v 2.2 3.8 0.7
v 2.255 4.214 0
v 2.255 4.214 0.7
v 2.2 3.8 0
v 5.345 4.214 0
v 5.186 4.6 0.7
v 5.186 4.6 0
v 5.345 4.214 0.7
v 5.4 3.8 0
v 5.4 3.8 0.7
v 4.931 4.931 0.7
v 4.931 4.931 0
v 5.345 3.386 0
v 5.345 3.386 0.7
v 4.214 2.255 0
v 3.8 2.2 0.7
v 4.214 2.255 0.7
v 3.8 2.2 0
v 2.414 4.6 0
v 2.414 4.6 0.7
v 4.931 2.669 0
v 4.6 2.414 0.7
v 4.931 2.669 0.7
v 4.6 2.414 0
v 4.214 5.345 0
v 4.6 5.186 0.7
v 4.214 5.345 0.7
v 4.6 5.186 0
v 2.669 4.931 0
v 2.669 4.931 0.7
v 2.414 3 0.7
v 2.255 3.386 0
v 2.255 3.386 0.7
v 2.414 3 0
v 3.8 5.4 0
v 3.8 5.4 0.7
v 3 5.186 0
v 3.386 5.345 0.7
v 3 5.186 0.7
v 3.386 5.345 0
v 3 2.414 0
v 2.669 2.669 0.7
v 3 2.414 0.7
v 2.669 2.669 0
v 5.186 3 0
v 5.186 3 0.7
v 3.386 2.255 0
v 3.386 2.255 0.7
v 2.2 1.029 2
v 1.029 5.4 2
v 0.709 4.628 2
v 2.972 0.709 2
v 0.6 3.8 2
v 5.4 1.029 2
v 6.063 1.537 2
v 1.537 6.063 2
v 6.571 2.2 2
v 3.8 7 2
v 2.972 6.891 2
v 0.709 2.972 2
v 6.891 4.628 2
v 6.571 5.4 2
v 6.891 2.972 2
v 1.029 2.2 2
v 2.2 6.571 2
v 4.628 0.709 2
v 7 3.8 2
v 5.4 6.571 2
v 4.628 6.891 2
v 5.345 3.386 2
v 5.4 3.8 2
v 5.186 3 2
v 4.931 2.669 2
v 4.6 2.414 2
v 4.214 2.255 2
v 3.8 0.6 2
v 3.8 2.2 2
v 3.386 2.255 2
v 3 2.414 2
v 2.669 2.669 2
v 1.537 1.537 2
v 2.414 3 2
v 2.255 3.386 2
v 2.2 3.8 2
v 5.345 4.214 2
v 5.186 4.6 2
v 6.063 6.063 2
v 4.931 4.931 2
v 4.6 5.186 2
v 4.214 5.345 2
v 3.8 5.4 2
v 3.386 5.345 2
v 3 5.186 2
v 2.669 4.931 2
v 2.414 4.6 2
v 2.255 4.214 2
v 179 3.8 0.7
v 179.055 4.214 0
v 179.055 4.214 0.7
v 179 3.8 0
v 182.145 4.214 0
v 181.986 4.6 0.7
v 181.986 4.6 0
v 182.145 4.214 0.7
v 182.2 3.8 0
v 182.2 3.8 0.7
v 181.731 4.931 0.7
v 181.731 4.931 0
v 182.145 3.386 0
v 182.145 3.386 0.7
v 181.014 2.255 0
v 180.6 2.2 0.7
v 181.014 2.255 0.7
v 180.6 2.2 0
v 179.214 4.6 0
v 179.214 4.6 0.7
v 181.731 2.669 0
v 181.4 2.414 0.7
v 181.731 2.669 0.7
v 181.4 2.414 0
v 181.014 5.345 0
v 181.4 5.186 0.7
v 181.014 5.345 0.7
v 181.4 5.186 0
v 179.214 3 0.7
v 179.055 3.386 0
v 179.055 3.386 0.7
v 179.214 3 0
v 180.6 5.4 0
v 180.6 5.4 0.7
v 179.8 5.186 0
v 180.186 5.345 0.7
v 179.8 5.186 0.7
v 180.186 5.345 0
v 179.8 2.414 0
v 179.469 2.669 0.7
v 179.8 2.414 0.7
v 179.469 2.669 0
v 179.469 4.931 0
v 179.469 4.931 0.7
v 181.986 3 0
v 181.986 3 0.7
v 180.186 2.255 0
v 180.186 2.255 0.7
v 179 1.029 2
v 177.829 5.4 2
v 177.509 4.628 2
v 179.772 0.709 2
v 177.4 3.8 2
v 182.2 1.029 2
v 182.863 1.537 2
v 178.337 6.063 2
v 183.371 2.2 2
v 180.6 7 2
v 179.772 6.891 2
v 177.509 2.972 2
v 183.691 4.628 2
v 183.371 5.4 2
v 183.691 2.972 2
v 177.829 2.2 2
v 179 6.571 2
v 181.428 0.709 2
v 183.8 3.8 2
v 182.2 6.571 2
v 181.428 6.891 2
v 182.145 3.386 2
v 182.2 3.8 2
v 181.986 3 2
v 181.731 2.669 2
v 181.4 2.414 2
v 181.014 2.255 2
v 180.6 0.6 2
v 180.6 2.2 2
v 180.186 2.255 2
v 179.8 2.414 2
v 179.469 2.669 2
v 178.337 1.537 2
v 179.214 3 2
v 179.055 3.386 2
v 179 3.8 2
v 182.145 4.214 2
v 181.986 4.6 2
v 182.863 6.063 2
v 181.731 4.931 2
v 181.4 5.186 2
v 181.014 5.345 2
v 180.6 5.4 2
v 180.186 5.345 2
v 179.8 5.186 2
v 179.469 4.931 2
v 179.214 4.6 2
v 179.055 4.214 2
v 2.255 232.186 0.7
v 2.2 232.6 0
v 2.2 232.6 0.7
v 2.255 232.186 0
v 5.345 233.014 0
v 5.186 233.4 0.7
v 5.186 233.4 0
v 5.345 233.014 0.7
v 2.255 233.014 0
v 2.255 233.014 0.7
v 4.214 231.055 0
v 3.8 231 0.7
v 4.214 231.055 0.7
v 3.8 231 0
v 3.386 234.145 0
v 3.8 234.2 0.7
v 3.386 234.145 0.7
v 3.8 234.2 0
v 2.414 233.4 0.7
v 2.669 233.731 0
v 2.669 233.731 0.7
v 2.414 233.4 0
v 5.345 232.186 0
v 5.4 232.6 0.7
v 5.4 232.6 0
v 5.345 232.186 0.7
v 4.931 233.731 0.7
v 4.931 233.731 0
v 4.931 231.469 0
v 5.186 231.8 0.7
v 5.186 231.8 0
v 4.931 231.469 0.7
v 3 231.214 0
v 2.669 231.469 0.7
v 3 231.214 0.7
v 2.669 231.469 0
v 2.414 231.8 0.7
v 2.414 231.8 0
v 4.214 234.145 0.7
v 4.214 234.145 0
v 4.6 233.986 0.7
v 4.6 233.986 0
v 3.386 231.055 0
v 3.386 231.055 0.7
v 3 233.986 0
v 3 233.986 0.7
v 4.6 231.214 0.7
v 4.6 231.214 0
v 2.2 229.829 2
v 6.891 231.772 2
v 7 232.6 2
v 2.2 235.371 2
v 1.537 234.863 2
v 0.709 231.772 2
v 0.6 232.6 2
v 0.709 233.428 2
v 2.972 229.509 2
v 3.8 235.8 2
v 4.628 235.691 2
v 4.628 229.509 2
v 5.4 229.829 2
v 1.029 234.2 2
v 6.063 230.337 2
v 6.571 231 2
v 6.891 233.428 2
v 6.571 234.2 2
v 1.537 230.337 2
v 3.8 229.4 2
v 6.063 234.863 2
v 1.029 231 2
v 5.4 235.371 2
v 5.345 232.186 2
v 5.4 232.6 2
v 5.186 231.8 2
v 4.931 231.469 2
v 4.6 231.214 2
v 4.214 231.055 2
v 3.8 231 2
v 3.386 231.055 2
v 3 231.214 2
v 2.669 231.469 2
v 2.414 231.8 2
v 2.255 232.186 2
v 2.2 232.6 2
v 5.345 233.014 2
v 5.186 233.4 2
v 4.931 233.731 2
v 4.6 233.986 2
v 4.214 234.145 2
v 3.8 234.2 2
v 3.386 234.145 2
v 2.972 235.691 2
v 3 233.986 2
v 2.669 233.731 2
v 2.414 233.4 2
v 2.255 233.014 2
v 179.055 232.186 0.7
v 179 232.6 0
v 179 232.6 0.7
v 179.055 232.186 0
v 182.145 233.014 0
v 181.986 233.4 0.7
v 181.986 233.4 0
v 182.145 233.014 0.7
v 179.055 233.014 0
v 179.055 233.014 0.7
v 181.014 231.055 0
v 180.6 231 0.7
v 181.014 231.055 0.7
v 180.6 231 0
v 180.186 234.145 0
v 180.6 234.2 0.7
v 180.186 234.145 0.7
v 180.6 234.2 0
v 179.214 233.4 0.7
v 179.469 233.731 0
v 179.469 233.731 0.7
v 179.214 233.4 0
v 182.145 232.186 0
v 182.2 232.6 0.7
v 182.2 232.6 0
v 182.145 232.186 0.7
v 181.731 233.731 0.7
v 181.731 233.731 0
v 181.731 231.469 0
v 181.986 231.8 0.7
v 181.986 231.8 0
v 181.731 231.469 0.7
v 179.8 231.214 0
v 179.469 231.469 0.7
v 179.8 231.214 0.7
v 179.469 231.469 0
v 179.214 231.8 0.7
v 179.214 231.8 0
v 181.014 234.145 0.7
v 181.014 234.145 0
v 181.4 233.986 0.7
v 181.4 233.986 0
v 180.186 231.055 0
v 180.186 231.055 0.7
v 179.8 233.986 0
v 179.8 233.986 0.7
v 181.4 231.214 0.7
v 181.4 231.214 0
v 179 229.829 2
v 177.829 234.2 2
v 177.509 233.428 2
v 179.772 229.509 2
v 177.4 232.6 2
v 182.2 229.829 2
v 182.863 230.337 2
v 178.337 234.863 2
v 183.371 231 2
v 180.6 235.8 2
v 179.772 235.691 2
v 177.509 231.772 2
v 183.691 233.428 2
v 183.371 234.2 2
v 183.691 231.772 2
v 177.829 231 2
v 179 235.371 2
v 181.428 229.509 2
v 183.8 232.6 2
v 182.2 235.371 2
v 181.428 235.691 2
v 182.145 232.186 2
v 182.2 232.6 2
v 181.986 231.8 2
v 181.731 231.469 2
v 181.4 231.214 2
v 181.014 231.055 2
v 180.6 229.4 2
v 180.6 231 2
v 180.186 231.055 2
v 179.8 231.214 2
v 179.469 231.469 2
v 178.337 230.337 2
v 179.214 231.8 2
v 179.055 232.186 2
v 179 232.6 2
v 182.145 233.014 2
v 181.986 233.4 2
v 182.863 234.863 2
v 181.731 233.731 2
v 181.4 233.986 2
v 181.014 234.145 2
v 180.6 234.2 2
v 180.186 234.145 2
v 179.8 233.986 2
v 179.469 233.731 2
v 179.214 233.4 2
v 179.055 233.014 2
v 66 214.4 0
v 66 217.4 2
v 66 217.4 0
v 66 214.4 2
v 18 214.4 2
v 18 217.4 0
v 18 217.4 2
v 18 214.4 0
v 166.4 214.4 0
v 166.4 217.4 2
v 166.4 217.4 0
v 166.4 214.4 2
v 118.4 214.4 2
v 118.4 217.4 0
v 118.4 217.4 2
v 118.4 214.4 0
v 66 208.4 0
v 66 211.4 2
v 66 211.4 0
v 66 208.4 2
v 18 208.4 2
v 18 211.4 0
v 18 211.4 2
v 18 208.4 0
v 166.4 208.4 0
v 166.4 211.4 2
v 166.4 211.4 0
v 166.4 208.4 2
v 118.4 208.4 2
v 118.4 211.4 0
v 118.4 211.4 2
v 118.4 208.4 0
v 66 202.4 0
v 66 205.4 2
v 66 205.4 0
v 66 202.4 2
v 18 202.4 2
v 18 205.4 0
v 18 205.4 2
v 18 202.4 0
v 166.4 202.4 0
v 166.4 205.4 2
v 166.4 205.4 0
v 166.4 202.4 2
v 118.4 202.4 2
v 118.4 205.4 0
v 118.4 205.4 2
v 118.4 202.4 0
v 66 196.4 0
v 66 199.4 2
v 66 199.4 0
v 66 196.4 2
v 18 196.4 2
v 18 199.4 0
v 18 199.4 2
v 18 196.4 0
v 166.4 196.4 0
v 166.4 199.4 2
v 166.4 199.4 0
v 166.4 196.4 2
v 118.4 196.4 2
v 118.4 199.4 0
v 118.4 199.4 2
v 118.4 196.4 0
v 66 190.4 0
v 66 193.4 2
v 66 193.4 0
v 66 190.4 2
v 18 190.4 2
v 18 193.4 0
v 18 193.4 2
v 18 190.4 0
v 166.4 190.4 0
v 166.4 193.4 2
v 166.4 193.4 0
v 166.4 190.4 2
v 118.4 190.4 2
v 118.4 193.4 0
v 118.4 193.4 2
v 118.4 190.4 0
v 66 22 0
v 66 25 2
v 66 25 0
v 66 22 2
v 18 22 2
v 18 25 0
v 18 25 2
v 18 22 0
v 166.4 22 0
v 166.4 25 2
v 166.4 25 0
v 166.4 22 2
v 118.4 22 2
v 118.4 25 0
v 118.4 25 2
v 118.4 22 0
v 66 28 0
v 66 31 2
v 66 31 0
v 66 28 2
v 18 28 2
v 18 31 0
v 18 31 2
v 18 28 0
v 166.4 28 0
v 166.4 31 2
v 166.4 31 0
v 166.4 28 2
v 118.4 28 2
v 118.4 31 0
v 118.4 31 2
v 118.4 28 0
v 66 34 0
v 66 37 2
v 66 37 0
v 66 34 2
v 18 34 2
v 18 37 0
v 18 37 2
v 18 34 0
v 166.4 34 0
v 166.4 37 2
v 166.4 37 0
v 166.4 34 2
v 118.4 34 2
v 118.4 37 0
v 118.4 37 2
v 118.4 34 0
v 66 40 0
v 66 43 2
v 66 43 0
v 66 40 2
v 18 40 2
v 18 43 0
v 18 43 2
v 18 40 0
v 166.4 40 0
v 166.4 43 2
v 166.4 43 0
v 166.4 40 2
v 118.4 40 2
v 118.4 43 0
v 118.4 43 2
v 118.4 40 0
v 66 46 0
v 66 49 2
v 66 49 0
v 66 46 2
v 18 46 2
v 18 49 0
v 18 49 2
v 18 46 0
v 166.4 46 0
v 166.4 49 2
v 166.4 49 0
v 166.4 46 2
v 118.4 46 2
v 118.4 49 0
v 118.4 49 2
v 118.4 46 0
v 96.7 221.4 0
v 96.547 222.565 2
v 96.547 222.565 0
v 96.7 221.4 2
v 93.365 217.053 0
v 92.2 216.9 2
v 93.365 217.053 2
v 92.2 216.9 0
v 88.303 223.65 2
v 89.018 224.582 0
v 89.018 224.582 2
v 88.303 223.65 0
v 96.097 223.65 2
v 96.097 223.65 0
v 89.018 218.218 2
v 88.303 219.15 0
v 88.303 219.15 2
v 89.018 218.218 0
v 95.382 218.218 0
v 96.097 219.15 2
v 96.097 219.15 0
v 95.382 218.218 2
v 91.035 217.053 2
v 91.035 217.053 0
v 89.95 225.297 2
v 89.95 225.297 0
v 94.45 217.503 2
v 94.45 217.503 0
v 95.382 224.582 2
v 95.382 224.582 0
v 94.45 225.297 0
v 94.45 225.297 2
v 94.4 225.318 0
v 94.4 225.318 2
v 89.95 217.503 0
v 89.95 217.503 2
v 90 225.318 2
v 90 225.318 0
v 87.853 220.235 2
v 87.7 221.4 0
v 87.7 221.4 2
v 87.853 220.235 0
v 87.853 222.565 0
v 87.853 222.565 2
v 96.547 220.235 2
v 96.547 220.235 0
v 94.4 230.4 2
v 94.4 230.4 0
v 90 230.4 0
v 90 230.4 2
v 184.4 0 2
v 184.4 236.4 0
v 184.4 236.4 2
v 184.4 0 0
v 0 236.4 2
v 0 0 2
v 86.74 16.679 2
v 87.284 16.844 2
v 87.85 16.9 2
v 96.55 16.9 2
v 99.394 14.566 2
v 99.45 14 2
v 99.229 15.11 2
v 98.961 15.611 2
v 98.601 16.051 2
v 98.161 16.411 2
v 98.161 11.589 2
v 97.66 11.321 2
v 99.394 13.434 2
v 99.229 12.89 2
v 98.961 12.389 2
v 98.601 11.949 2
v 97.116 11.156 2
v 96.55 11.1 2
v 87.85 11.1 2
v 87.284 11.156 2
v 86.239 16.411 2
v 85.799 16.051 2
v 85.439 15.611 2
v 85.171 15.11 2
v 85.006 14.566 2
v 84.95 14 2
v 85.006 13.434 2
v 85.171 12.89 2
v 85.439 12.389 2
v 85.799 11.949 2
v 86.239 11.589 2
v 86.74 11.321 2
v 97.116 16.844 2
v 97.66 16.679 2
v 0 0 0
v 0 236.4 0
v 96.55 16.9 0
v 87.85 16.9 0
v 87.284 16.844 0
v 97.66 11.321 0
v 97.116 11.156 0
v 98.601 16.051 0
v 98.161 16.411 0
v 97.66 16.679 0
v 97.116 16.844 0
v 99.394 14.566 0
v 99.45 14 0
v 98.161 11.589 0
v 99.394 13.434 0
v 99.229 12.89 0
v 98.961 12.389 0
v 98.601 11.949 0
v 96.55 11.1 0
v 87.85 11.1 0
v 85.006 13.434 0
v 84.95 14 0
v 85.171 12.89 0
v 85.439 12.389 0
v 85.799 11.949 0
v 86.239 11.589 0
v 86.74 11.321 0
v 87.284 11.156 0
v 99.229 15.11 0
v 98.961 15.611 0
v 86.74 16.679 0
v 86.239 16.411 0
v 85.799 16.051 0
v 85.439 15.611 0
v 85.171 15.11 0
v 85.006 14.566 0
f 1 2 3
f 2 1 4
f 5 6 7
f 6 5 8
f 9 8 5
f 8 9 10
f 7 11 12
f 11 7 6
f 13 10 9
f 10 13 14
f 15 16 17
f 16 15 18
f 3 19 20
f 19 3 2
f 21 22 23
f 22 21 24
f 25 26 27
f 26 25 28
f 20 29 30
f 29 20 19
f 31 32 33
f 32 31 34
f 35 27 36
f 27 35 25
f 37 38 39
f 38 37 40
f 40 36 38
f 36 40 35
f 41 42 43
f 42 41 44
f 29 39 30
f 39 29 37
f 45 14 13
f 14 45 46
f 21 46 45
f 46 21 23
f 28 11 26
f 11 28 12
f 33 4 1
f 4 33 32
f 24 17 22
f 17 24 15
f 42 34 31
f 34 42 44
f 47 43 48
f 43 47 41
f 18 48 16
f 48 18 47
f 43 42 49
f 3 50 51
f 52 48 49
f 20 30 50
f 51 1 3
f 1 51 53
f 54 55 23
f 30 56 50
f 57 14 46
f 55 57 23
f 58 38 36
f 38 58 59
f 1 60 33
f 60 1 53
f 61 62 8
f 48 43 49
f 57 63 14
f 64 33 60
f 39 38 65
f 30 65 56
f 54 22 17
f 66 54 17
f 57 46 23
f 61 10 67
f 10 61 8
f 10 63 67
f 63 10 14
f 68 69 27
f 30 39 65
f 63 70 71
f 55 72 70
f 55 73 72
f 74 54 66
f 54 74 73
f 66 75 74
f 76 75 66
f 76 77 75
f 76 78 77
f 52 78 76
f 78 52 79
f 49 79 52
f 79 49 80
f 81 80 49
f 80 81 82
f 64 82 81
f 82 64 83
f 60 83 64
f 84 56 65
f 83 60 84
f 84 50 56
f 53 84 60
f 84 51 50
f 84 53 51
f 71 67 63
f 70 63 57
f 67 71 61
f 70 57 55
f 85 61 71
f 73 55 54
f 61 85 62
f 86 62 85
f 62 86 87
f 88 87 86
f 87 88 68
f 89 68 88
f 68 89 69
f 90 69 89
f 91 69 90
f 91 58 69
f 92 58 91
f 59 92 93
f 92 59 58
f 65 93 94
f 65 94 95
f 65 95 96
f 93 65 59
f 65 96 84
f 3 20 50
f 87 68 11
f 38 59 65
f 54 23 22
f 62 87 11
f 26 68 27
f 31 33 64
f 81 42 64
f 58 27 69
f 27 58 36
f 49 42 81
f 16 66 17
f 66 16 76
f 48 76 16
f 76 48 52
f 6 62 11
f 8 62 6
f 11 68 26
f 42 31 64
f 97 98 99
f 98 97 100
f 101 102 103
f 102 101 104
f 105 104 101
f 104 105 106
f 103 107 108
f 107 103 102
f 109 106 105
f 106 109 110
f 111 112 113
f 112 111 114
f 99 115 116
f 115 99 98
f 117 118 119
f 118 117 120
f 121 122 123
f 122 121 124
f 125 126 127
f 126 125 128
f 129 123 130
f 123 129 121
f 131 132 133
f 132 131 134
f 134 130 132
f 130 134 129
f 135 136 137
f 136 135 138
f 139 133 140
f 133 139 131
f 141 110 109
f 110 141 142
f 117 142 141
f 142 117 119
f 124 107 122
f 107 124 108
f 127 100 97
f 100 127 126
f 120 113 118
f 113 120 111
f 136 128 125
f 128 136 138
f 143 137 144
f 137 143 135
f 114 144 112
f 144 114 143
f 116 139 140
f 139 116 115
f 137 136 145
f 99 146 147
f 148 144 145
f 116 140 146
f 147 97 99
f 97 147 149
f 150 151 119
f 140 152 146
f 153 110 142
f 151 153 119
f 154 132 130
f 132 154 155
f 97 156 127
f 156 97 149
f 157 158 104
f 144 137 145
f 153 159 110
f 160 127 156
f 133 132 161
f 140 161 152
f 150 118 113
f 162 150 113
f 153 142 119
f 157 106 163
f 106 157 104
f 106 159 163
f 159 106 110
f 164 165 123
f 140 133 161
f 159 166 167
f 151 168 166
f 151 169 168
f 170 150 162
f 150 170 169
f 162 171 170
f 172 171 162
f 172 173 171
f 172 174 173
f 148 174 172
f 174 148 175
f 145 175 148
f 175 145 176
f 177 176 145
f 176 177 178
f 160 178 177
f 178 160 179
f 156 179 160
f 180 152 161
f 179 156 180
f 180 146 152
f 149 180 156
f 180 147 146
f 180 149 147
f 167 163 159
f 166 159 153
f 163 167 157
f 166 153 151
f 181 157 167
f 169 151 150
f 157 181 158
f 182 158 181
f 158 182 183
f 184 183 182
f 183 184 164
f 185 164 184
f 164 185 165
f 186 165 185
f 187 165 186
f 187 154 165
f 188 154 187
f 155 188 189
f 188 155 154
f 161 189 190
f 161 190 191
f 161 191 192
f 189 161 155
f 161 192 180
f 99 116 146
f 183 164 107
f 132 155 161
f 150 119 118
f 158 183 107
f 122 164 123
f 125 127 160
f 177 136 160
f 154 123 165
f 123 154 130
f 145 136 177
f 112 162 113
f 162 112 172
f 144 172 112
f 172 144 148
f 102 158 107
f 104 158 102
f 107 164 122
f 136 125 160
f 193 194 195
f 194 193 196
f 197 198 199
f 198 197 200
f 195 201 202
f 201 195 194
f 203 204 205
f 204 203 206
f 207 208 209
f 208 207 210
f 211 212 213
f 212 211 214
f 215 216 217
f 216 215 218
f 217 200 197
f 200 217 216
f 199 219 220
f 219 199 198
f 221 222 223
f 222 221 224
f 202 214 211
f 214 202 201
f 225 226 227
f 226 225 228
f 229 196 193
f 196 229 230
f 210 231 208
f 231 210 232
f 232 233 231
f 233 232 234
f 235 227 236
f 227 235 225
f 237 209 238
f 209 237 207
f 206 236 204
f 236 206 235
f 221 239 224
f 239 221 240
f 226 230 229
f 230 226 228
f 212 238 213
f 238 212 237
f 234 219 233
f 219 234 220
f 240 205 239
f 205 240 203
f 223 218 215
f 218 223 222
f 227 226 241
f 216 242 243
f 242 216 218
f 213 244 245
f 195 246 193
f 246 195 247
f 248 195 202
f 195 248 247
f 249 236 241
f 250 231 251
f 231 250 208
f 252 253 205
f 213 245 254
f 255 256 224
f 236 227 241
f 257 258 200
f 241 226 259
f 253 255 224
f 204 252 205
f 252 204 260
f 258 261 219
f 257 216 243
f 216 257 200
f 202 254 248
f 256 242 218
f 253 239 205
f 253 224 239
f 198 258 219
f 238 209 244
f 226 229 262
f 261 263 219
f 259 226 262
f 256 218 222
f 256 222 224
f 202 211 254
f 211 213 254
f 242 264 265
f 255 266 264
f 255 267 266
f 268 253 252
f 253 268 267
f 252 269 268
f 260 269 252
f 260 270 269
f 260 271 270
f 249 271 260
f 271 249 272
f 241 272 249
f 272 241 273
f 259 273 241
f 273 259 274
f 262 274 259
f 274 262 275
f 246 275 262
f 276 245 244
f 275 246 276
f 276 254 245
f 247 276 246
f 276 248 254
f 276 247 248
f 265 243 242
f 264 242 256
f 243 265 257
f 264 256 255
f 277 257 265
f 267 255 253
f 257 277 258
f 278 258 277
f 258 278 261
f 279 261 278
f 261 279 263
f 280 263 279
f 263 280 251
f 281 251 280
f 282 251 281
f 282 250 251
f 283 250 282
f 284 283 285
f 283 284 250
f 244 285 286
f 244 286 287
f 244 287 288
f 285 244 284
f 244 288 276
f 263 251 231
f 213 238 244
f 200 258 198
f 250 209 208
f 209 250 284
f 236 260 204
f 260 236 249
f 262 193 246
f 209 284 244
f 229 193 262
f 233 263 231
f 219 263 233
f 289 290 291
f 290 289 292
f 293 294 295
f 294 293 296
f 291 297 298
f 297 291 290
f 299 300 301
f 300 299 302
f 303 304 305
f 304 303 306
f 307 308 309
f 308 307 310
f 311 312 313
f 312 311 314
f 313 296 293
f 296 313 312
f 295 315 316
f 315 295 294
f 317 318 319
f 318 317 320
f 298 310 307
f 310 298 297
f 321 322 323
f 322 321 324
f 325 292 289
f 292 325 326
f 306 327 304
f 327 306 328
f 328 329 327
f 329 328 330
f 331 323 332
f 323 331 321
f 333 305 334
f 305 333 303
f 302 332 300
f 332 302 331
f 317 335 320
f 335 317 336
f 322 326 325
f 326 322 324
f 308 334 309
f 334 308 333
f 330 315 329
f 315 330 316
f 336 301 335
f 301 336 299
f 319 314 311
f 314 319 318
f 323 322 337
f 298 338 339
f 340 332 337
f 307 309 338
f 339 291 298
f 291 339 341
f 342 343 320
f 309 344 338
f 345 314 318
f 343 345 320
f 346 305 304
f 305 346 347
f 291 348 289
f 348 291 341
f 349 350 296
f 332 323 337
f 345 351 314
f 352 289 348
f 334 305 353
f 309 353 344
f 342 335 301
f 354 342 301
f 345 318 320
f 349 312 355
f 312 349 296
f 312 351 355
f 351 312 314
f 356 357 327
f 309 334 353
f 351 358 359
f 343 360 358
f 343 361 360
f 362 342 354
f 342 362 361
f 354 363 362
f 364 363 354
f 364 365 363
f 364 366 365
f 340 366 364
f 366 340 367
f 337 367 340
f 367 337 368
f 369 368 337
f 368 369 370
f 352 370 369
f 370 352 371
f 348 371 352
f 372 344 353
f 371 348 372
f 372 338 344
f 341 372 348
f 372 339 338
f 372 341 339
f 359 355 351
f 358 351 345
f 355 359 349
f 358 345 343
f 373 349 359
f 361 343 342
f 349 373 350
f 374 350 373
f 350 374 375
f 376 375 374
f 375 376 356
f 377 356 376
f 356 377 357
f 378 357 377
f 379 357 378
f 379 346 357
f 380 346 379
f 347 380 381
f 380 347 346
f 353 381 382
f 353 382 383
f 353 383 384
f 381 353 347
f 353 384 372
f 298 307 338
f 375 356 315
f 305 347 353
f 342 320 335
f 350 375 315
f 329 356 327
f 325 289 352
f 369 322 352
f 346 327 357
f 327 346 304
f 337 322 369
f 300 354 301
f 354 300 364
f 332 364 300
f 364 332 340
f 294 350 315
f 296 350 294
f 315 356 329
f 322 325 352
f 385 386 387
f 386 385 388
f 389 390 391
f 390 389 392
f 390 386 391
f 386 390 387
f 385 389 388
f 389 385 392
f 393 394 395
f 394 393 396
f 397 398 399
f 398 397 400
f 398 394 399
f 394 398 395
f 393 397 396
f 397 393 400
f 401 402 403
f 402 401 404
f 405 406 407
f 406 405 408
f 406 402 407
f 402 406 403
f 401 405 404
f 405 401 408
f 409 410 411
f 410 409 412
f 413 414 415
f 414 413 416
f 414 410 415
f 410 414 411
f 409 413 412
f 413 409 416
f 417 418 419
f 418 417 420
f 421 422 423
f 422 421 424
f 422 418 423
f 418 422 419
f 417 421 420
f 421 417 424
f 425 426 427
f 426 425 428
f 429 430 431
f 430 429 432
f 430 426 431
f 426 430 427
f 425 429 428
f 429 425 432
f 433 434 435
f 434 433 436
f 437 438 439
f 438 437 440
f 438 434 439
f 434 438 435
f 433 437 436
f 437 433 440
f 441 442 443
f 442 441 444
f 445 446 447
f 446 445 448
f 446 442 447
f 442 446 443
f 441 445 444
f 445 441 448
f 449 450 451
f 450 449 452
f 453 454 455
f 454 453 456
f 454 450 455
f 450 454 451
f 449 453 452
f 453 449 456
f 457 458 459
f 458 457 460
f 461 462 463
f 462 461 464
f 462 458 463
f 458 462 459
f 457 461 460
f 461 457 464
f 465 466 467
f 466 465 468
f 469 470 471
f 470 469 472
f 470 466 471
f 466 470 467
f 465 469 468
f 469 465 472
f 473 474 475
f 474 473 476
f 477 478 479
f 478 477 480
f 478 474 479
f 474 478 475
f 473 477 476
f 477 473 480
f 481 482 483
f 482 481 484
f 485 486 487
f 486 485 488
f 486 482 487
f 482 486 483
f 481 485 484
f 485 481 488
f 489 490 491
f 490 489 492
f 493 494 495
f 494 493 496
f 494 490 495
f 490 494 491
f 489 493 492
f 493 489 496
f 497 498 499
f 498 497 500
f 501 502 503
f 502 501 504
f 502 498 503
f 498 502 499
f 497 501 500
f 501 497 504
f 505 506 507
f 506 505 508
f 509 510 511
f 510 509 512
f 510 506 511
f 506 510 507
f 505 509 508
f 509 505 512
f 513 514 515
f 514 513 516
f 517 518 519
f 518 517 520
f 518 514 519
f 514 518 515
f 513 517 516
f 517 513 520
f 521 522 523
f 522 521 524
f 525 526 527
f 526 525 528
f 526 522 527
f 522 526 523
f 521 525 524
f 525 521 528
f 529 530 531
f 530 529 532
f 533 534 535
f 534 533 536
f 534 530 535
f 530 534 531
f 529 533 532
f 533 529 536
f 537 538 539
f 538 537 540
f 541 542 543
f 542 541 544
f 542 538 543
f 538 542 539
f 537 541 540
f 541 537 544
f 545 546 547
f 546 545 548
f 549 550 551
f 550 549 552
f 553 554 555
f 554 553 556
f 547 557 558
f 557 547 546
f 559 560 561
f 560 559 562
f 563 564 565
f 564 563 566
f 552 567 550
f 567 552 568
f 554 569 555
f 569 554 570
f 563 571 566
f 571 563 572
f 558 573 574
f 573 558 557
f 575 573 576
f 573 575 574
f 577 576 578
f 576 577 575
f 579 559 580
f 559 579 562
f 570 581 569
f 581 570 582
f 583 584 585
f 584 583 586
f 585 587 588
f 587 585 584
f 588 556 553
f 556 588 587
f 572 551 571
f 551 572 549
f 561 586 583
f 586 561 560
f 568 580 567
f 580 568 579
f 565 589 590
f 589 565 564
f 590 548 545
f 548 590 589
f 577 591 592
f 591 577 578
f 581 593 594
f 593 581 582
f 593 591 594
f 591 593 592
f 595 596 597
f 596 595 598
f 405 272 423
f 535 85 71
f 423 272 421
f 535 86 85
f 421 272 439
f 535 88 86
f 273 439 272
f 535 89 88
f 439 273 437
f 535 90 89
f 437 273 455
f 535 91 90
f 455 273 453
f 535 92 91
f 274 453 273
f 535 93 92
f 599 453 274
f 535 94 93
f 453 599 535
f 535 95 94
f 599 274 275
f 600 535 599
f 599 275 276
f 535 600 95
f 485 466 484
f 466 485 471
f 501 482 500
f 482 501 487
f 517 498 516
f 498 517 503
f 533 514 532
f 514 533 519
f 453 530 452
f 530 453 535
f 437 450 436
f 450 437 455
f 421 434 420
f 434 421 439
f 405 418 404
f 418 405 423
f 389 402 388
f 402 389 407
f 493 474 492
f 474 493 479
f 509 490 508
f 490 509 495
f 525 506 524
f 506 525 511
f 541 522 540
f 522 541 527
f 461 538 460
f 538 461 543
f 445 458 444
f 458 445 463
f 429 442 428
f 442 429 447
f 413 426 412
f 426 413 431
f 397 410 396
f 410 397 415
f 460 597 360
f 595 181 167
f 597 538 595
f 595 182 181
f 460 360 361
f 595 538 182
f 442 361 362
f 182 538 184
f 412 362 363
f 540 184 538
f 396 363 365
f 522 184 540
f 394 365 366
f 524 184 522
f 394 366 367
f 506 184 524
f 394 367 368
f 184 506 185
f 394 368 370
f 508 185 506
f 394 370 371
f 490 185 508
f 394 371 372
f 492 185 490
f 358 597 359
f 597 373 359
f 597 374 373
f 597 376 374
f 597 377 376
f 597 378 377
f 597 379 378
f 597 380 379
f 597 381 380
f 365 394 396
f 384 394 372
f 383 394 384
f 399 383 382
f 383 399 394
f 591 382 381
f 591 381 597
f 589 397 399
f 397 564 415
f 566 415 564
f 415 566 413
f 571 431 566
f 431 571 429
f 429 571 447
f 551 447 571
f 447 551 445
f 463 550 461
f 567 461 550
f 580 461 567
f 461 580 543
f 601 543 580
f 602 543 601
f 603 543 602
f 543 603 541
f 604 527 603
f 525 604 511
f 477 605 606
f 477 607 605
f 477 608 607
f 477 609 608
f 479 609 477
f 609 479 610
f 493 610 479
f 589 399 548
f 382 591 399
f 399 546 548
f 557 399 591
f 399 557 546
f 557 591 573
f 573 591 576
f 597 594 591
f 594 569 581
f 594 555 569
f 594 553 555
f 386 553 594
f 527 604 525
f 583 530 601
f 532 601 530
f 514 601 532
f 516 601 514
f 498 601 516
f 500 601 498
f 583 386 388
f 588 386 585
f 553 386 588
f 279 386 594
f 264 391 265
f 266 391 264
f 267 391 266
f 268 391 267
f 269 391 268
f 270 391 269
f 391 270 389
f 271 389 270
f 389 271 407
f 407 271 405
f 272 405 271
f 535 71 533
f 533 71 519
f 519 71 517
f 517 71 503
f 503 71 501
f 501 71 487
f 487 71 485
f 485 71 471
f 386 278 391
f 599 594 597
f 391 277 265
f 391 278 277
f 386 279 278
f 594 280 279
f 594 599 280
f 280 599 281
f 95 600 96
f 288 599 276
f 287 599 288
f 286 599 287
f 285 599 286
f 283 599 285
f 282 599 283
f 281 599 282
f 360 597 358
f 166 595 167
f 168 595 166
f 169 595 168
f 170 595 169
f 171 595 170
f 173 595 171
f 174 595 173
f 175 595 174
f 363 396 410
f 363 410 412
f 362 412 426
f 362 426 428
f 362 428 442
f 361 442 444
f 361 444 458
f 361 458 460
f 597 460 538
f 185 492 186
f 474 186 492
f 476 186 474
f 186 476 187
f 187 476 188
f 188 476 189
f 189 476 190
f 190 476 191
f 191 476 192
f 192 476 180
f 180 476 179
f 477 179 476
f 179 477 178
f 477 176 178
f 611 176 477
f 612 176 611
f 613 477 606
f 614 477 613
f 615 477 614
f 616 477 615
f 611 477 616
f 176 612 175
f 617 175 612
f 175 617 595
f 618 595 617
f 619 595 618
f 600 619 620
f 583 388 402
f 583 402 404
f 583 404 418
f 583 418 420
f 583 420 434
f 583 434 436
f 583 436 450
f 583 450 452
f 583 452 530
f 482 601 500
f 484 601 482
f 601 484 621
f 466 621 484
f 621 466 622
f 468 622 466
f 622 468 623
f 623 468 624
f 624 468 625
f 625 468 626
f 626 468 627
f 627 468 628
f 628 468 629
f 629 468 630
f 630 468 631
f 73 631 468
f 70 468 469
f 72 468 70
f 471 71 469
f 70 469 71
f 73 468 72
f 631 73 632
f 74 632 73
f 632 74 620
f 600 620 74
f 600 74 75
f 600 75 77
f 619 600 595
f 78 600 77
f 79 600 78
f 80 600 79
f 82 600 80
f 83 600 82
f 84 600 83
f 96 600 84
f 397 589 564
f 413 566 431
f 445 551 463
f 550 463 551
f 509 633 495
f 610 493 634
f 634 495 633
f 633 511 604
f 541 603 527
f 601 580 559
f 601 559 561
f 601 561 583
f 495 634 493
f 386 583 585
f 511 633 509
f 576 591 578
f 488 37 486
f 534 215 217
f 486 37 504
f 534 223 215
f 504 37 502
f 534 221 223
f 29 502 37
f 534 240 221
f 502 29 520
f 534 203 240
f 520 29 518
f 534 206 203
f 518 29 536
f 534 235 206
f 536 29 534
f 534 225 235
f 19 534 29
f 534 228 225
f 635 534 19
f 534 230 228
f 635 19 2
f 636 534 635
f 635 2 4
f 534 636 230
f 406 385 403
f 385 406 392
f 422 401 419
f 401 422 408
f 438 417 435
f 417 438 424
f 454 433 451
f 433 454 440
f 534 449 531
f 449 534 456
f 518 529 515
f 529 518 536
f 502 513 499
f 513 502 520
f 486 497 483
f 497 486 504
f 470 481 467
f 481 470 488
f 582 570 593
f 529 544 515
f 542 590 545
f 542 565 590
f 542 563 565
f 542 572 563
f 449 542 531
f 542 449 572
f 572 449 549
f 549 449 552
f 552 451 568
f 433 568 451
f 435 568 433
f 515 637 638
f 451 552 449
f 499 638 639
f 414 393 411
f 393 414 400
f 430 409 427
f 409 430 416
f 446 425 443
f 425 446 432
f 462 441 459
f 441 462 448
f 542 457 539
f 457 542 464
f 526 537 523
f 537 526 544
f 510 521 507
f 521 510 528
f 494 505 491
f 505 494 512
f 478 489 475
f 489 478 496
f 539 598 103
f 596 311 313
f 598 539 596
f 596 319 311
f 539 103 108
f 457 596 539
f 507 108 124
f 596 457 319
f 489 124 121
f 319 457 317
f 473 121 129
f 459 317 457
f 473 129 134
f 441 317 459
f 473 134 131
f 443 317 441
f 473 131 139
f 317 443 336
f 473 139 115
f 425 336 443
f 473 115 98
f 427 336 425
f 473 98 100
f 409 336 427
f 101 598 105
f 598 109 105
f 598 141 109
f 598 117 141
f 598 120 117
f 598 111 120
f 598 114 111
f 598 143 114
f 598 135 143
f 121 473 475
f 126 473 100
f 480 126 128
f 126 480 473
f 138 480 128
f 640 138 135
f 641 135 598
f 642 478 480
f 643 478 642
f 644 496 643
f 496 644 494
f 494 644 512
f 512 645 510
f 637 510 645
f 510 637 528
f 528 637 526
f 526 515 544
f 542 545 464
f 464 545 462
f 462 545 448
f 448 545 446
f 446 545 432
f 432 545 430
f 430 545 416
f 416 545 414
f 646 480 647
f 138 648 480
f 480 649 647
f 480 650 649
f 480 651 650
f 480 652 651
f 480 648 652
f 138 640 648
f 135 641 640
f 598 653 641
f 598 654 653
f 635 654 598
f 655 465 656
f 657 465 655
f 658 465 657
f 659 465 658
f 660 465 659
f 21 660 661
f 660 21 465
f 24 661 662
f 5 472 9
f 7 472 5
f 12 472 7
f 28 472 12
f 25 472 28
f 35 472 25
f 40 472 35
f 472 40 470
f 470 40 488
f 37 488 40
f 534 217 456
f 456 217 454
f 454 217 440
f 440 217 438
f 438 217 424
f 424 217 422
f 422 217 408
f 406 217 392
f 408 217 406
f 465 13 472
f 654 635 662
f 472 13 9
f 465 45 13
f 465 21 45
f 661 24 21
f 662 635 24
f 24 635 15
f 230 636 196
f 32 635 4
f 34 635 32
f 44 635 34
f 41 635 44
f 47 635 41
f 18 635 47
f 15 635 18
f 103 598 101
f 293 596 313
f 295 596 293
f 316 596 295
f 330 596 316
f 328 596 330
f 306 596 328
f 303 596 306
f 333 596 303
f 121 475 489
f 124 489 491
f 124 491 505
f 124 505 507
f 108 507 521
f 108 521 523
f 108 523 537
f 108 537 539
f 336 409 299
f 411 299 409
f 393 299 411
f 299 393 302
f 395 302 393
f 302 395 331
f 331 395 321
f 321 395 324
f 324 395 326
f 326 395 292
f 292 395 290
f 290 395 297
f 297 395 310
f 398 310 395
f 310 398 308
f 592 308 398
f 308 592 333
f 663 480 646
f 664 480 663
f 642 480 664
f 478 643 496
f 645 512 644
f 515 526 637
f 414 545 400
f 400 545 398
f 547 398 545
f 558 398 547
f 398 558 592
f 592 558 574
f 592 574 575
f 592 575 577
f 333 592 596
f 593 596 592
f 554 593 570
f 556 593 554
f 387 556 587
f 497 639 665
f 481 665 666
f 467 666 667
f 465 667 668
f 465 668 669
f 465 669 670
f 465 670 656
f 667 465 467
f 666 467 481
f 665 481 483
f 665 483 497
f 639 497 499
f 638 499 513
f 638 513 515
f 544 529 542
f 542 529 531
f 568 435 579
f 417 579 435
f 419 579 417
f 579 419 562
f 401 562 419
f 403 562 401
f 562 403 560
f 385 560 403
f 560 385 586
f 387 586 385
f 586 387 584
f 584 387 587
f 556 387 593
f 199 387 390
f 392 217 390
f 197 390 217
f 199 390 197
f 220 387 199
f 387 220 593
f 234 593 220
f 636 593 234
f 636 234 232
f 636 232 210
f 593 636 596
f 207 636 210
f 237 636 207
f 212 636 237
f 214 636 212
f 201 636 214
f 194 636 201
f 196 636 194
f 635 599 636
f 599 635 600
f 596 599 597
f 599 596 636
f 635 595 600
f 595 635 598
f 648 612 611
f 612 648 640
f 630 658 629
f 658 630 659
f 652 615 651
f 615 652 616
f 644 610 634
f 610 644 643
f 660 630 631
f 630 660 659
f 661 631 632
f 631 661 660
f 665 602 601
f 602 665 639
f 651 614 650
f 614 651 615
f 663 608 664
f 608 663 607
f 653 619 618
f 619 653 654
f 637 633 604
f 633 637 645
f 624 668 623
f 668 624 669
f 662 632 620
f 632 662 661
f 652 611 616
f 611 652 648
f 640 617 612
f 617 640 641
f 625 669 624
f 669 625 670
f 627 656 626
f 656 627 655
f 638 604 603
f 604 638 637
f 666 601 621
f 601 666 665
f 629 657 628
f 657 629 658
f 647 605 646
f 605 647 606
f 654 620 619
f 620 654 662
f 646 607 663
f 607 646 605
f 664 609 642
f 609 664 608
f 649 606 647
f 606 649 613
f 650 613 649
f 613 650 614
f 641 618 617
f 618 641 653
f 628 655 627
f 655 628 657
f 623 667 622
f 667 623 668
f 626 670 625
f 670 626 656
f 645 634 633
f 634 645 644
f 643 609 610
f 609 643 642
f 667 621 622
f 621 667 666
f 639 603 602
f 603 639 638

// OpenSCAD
// ==============================================================================
// WORDCLOCK ESP32 - VERSION 2 (AL RAS / INCRUSTADA)
// PIEZA 3: TAPA TRASERA INCRUSTADA DE 184.4 x 236.4 mm CON RANURA USB-C
// ==============================================================================

box_w       = 188.0;
box_h       = 240.0;
wall_thick  = 1.6;
clearance   = 0.2;     // 0.2 mm de holgura por lado
lid_thick   = 2.0;

// Dimensiones reducidas para entrar dentro del perímetro interno
lid_w       = box_w - (2 * wall_thick) - (2 * clearance); // 184.4 mm
lid_h       = box_h - (2 * wall_thick) - (2 * clearance); // 236.4 mm

screw_off_lid = (wall_thick + 4.0) - wall_thick - clearance; // ~3.8 mm

module wordclock_back_lid() {
    difference() {
        // 1. Placa Base Incrustada (184.4 x 236.4 x 2.0 mm)
        cube([lid_w, lid_h, lid_thick]);

        // 2. Orificios avellanados (Countersunk) en las 4 esquinas para tornillos M3
        translate([screw_off_lid, screw_off_lid, -0.1]) {
            cylinder(r = 1.6, h = lid_thick + 0.2, $fn = 24);
            translate([0, 0, 0.8]) cylinder(r1 = 1.6, r2 = 3.2, h = 1.3, $fn = 24);
        }
        translate([lid_w - screw_off_lid, screw_off_lid, -0.1]) {
            cylinder(r = 1.6, h = lid_thick + 0.2, $fn = 24);
            translate([0, 0, 0.8]) cylinder(r1 = 1.6, r2 = 3.2, h = 1.3, $fn = 24);
        }
        translate([screw_off_lid, lid_h - screw_off_lid, -0.1]) {
            cylinder(r = 1.6, h = lid_thick + 0.2, $fn = 24);
            translate([0, 0, 0.8]) cylinder(r1 = 1.6, r2 = 3.2, h = 1.3, $fn = 24);
        }
        translate([lid_w - screw_off_lid, lid_h - screw_off_lid, -0.1]) {
            cylinder(r = 1.6, h = lid_thick + 0.2, $fn = 24);
            translate([0, 0, 0.8]) cylinder(r1 = 1.6, r2 = 3.2, h = 1.3, $fn = 24);
        }

        // 3. Ranuras de Ventilación Superior
        for (i = [0 : 4]) {
            y_slot = lid_h - 22 - (i * 6);
            translate([18, y_slot, -0.1])         cube([48, 3.0, lid_thick + 0.2]);
            translate([lid_w - 66, y_slot, -0.1]) cube([48, 3.0, lid_thick + 0.2]);
        }

        // 4. Ranuras de Ventilación Inferior
        for (i = [0 : 4]) {
            y_slot = 22 + (i * 6);
            translate([18, y_slot, -0.1])         cube([48, 3.0, lid_thick + 0.2]);
            translate([lid_w - 66, y_slot, -0.1]) cube([48, 3.0, lid_thick + 0.2]);
        }

        // 5. RANURA USB-C OBLONGA / PANELSOCKET (14.5 x 5.8 mm con r = 2.9 mm)
        translate([lid_w / 2, 14.0, -0.1]) {
            hull() {
                translate([-4.35, 0, 0]) cylinder(r = 2.9, h = lid_thick + 0.2, $fn = 32);
                translate([ 4.35, 0, 0]) cylinder(r = 2.9, h = lid_thick + 0.2, $fn = 32);
            }
        }

        // 6. Muesca de cerradura (Keyhole) para colgar en pared
        translate([lid_w / 2, lid_h - 15, -0.1]) {
            union() {
                cylinder(r = 4.5, h = lid_thick + 0.2, $fn = 24);
                translate([-2.2, 0, 0]) cube([4.4, 9.0, lid_thick + 0.2]);
            }
        }
    }
}

wordclock_back_lid();
